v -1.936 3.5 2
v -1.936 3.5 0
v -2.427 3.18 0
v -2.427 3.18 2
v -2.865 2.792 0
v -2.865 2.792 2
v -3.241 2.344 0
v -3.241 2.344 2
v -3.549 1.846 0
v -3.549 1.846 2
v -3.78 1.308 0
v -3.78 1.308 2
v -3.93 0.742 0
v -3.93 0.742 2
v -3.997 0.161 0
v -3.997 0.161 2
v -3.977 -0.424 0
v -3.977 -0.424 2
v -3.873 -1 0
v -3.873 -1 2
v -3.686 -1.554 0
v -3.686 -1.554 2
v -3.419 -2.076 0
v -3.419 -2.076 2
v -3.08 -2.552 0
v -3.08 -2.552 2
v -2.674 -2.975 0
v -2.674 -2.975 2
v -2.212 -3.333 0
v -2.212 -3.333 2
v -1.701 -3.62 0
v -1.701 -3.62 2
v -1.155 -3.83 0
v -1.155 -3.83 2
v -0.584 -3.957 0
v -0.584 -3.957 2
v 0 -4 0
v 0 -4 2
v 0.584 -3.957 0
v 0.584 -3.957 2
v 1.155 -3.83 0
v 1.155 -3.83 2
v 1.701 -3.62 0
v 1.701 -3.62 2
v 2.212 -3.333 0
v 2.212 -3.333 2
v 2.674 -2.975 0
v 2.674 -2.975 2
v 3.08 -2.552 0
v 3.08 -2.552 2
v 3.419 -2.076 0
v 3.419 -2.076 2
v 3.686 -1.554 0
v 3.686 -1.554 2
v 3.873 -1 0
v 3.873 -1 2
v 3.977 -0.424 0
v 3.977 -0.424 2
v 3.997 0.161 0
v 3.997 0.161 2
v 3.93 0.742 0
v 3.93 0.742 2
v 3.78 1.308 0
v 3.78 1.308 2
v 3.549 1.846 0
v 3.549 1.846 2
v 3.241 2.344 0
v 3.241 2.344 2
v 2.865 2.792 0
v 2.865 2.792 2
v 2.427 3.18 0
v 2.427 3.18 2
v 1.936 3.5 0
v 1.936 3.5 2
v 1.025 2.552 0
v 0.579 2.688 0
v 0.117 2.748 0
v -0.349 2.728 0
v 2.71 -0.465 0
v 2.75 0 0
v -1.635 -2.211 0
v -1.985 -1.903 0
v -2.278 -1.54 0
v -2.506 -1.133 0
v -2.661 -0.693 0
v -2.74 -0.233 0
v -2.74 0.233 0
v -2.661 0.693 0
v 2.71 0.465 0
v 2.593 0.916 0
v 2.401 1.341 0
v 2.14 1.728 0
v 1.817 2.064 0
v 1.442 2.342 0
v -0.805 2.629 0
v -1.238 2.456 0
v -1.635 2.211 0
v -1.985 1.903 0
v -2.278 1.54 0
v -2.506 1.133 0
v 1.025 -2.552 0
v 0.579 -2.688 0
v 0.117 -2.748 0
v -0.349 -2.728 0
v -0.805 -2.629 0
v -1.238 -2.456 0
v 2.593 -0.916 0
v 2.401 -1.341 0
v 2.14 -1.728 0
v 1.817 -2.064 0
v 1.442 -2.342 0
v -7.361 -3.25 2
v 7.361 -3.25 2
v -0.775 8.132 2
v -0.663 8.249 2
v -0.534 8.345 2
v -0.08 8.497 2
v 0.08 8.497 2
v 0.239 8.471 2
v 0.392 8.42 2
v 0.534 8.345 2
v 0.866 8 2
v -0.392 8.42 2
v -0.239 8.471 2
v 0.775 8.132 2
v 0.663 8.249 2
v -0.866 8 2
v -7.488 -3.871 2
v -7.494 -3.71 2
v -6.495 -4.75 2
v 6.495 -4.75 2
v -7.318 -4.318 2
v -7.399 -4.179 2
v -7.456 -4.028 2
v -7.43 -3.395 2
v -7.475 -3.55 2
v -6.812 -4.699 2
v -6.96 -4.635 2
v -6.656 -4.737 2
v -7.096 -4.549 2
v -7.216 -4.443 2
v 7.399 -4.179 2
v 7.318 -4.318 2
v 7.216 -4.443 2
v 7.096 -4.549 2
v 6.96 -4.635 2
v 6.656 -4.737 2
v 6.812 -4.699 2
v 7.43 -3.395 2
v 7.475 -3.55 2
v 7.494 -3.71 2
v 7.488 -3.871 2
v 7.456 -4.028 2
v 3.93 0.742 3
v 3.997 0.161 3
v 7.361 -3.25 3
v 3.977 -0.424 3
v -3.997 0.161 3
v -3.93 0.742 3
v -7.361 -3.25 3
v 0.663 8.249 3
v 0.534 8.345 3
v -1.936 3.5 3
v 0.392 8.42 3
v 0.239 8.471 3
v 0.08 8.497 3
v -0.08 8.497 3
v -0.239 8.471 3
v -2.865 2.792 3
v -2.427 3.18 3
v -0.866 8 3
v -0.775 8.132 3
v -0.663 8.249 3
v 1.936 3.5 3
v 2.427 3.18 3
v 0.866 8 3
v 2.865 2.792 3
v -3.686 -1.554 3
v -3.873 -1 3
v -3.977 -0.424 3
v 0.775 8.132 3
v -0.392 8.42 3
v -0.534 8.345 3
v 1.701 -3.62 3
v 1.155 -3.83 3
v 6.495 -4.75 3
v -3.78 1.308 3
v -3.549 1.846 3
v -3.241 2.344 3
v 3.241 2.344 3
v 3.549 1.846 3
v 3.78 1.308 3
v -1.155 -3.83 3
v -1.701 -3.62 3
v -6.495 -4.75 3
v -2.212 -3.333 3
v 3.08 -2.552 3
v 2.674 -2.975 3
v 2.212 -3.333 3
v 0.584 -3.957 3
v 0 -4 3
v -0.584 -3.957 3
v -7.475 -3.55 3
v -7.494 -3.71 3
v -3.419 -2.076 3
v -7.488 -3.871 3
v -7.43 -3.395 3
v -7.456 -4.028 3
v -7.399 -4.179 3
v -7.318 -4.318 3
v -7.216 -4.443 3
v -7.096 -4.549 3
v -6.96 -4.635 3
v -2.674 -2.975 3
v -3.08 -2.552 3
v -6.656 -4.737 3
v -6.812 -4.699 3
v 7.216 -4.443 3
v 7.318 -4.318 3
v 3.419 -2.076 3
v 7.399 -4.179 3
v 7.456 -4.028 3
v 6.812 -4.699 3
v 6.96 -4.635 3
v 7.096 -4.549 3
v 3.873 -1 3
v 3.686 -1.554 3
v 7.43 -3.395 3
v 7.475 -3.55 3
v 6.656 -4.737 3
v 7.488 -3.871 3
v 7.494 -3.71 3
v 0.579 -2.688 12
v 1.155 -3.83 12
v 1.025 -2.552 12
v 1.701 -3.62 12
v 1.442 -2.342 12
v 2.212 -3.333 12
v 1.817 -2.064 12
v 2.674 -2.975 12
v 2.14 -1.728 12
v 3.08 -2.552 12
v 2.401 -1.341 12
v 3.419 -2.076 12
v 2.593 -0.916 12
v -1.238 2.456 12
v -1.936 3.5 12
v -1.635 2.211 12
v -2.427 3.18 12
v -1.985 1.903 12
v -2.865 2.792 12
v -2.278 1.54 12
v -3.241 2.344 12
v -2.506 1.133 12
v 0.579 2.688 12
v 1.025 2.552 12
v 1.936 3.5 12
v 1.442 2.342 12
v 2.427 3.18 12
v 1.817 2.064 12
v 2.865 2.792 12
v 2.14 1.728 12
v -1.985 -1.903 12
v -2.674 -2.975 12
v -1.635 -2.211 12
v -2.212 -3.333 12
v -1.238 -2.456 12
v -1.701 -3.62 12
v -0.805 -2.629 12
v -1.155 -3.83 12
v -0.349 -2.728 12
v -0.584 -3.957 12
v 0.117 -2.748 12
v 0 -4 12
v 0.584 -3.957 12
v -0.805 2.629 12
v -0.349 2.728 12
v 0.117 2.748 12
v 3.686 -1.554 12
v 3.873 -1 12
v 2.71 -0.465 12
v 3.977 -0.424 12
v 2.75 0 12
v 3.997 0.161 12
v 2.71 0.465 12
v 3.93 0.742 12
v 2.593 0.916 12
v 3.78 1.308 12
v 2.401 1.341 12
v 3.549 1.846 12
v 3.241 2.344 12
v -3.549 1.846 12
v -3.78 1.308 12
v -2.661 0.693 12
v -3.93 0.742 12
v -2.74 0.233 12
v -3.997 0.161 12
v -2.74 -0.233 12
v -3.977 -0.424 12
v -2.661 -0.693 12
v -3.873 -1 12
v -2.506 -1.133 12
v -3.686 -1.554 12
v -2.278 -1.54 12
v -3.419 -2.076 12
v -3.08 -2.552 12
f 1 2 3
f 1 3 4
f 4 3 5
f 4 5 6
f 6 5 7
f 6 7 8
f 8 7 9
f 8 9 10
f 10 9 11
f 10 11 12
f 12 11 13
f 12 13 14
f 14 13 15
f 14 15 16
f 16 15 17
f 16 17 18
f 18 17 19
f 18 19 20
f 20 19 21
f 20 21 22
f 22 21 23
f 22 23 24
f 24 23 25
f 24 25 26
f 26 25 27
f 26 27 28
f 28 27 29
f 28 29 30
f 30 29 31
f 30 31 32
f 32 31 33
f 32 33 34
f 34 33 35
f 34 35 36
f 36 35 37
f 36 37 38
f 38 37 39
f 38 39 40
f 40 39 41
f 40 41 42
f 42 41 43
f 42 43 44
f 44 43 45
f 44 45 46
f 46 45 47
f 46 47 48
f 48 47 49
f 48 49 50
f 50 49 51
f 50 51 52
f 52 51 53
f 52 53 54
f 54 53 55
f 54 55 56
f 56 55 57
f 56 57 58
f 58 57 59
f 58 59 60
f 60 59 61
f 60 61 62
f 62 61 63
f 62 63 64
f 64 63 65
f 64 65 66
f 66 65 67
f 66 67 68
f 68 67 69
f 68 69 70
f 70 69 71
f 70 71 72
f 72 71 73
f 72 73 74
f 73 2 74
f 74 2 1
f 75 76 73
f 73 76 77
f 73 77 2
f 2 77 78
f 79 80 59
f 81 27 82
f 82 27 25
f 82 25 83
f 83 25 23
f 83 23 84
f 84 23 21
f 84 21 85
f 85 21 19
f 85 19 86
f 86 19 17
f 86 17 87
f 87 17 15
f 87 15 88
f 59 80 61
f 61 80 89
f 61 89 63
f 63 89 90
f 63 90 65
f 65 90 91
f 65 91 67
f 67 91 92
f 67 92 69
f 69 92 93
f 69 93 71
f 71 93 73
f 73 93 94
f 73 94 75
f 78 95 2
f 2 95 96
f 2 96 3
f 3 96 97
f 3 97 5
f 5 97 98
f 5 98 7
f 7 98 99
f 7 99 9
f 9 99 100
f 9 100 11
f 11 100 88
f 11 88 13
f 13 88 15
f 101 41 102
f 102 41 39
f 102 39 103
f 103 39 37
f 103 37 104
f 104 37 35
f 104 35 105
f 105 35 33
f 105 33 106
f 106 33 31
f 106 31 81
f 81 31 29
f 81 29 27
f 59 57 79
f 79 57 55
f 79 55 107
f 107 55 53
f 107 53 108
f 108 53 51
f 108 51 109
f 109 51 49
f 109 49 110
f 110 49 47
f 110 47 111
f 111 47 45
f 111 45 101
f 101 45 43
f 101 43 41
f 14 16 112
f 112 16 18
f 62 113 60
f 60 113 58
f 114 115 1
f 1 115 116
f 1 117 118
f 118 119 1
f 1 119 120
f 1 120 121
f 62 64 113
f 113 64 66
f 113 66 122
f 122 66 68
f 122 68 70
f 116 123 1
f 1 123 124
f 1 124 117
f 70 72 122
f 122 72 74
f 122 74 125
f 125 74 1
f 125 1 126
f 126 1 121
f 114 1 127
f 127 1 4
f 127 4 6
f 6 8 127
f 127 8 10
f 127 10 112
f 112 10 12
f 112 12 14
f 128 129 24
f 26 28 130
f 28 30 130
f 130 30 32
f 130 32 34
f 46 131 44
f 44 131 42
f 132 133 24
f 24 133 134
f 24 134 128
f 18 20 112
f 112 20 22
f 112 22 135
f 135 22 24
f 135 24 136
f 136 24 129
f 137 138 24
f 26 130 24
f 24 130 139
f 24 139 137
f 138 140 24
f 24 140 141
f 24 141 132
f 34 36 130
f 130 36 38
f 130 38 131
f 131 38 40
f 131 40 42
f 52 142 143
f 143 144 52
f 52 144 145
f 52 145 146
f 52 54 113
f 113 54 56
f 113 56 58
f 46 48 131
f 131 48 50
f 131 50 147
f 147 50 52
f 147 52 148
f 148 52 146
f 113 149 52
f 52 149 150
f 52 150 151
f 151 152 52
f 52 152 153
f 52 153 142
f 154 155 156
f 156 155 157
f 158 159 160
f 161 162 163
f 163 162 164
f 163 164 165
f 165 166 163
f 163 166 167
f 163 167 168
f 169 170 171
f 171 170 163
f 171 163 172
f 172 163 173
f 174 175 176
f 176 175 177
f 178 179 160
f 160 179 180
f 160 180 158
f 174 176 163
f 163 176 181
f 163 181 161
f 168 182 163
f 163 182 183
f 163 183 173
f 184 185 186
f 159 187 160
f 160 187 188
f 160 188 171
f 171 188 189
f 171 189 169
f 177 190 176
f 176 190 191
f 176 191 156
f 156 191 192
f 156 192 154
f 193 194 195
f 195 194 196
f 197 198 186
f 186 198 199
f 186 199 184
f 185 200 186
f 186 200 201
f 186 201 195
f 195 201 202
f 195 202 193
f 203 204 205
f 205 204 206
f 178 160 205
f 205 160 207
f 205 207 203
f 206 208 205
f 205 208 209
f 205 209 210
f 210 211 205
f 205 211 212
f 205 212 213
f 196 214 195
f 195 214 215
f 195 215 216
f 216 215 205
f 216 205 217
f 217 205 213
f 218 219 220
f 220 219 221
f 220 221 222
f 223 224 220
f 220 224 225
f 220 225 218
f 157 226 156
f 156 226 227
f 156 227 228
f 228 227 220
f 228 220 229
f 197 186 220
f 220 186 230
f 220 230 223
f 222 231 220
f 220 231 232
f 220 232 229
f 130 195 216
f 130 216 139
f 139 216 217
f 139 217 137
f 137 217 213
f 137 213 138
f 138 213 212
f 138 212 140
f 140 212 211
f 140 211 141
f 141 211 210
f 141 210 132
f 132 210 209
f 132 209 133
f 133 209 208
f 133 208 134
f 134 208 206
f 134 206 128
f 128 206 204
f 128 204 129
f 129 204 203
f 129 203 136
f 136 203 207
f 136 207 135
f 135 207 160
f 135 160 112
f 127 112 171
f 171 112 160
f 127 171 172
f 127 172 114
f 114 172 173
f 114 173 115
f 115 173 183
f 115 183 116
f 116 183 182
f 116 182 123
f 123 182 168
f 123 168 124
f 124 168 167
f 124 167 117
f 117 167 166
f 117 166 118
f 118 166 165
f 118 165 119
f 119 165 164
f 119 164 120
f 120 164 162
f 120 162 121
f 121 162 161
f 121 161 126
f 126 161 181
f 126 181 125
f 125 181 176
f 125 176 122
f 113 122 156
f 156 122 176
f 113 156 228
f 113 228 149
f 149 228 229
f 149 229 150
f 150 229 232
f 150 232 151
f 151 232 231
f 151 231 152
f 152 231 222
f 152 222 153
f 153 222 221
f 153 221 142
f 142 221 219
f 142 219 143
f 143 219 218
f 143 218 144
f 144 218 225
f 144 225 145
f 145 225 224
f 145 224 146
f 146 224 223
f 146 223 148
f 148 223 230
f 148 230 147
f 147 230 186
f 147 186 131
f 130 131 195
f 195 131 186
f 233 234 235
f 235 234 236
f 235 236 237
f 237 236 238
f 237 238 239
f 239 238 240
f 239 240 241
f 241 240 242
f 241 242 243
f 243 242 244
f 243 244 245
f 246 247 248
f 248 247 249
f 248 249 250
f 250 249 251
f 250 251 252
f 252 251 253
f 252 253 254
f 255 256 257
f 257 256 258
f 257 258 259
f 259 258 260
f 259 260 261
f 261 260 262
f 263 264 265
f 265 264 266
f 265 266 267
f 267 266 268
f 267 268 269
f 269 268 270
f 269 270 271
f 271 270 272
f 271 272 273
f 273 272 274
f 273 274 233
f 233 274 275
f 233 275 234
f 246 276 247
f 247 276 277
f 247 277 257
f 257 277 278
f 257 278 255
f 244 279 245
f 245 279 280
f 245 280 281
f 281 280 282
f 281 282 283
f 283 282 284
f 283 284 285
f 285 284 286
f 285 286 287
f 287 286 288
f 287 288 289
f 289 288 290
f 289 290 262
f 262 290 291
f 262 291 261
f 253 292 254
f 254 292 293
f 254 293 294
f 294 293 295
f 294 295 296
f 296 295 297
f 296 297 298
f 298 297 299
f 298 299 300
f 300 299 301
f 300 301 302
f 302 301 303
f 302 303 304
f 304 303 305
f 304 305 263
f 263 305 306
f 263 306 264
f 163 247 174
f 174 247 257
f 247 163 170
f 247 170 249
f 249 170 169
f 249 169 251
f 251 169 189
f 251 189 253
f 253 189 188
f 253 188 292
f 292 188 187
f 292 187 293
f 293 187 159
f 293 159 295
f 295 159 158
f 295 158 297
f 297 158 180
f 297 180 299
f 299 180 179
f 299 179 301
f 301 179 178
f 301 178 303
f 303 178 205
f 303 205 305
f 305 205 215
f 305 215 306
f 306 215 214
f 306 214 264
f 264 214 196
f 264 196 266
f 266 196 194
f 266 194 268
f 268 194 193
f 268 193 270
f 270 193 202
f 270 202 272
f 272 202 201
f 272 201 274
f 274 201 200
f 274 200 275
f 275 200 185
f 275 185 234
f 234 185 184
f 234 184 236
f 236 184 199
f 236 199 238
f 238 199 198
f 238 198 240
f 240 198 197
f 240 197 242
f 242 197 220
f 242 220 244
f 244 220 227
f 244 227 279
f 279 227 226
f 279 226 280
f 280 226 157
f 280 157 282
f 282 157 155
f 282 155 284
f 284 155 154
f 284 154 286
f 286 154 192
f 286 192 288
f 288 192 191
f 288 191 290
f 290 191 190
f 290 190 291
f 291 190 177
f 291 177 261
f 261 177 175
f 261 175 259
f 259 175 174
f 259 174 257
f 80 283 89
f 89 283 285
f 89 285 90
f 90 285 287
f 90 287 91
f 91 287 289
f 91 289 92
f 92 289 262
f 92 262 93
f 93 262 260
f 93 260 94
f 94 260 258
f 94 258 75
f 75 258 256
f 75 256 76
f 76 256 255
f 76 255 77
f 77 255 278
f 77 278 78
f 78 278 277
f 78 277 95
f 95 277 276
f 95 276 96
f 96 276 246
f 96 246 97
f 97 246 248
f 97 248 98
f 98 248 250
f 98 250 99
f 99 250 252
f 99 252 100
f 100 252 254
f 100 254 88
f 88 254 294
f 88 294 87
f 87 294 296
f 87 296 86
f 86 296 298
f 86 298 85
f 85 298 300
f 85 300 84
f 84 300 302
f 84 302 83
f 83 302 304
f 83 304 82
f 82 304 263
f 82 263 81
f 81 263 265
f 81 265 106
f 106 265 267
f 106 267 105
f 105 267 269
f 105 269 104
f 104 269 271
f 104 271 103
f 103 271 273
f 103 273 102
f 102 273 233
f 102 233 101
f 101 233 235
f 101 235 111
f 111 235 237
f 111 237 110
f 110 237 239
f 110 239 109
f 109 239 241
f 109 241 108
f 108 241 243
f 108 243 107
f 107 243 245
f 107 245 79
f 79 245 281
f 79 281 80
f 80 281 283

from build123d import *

# Parameters (mm, degrees)
EXTRUDE_1_DEPTH     = 12
EXTRUDE_2_DEPTH     = 1
SKETCH_2_R          = 2.75
CUT_EXTRUDE_1_DEPTH = 100


with BuildPart() as part:
    # 草图1 → 凸台-拉伸1 (new body)
    with BuildSketch(Plane.XY):
        with BuildLine():
            Line((-1.936491673, 3.5), (1.936491673, 3.5))
            ThreePointArc((1.936491673, 3.5), (0, -4), (-1.936491673, 3.5))
        make_face()
    extrude(amount=EXTRUDE_1_DEPTH)

    # 草图3 → 凸台-拉伸2 (add)
    with BuildSketch(Plane.XY.offset(3)):
        with BuildLine():
            Line((-6.495190528, -4.75), (6.495190528, -4.75))
            ThreePointArc((6.495190528, -4.75), (7.361215932, -4.25), (7.361215932, -3.25))
            Line((7.361215932, -3.25), (0.866025404, 8))
            ThreePointArc((0.866025404, 8), (0, 8.5), (-0.866025404, 8))
            Line((-0.866025404, 8), (-7.361215932, -3.25))
            ThreePointArc((-7.361215932, -3.25), (-7.361215932, -4.25), (-6.495190528, -4.75))
        make_face()
    extrude(amount=-EXTRUDE_2_DEPTH)

    # 草图2 → 切除-拉伸1 (cut)
    with BuildSketch(Plane.XY.offset(12)):
        Circle(SKETCH_2_R)
    extrude(amount=-CUT_EXTRUDE_1_DEPTH, mode=Mode.SUBTRACT)


solid = part.part
